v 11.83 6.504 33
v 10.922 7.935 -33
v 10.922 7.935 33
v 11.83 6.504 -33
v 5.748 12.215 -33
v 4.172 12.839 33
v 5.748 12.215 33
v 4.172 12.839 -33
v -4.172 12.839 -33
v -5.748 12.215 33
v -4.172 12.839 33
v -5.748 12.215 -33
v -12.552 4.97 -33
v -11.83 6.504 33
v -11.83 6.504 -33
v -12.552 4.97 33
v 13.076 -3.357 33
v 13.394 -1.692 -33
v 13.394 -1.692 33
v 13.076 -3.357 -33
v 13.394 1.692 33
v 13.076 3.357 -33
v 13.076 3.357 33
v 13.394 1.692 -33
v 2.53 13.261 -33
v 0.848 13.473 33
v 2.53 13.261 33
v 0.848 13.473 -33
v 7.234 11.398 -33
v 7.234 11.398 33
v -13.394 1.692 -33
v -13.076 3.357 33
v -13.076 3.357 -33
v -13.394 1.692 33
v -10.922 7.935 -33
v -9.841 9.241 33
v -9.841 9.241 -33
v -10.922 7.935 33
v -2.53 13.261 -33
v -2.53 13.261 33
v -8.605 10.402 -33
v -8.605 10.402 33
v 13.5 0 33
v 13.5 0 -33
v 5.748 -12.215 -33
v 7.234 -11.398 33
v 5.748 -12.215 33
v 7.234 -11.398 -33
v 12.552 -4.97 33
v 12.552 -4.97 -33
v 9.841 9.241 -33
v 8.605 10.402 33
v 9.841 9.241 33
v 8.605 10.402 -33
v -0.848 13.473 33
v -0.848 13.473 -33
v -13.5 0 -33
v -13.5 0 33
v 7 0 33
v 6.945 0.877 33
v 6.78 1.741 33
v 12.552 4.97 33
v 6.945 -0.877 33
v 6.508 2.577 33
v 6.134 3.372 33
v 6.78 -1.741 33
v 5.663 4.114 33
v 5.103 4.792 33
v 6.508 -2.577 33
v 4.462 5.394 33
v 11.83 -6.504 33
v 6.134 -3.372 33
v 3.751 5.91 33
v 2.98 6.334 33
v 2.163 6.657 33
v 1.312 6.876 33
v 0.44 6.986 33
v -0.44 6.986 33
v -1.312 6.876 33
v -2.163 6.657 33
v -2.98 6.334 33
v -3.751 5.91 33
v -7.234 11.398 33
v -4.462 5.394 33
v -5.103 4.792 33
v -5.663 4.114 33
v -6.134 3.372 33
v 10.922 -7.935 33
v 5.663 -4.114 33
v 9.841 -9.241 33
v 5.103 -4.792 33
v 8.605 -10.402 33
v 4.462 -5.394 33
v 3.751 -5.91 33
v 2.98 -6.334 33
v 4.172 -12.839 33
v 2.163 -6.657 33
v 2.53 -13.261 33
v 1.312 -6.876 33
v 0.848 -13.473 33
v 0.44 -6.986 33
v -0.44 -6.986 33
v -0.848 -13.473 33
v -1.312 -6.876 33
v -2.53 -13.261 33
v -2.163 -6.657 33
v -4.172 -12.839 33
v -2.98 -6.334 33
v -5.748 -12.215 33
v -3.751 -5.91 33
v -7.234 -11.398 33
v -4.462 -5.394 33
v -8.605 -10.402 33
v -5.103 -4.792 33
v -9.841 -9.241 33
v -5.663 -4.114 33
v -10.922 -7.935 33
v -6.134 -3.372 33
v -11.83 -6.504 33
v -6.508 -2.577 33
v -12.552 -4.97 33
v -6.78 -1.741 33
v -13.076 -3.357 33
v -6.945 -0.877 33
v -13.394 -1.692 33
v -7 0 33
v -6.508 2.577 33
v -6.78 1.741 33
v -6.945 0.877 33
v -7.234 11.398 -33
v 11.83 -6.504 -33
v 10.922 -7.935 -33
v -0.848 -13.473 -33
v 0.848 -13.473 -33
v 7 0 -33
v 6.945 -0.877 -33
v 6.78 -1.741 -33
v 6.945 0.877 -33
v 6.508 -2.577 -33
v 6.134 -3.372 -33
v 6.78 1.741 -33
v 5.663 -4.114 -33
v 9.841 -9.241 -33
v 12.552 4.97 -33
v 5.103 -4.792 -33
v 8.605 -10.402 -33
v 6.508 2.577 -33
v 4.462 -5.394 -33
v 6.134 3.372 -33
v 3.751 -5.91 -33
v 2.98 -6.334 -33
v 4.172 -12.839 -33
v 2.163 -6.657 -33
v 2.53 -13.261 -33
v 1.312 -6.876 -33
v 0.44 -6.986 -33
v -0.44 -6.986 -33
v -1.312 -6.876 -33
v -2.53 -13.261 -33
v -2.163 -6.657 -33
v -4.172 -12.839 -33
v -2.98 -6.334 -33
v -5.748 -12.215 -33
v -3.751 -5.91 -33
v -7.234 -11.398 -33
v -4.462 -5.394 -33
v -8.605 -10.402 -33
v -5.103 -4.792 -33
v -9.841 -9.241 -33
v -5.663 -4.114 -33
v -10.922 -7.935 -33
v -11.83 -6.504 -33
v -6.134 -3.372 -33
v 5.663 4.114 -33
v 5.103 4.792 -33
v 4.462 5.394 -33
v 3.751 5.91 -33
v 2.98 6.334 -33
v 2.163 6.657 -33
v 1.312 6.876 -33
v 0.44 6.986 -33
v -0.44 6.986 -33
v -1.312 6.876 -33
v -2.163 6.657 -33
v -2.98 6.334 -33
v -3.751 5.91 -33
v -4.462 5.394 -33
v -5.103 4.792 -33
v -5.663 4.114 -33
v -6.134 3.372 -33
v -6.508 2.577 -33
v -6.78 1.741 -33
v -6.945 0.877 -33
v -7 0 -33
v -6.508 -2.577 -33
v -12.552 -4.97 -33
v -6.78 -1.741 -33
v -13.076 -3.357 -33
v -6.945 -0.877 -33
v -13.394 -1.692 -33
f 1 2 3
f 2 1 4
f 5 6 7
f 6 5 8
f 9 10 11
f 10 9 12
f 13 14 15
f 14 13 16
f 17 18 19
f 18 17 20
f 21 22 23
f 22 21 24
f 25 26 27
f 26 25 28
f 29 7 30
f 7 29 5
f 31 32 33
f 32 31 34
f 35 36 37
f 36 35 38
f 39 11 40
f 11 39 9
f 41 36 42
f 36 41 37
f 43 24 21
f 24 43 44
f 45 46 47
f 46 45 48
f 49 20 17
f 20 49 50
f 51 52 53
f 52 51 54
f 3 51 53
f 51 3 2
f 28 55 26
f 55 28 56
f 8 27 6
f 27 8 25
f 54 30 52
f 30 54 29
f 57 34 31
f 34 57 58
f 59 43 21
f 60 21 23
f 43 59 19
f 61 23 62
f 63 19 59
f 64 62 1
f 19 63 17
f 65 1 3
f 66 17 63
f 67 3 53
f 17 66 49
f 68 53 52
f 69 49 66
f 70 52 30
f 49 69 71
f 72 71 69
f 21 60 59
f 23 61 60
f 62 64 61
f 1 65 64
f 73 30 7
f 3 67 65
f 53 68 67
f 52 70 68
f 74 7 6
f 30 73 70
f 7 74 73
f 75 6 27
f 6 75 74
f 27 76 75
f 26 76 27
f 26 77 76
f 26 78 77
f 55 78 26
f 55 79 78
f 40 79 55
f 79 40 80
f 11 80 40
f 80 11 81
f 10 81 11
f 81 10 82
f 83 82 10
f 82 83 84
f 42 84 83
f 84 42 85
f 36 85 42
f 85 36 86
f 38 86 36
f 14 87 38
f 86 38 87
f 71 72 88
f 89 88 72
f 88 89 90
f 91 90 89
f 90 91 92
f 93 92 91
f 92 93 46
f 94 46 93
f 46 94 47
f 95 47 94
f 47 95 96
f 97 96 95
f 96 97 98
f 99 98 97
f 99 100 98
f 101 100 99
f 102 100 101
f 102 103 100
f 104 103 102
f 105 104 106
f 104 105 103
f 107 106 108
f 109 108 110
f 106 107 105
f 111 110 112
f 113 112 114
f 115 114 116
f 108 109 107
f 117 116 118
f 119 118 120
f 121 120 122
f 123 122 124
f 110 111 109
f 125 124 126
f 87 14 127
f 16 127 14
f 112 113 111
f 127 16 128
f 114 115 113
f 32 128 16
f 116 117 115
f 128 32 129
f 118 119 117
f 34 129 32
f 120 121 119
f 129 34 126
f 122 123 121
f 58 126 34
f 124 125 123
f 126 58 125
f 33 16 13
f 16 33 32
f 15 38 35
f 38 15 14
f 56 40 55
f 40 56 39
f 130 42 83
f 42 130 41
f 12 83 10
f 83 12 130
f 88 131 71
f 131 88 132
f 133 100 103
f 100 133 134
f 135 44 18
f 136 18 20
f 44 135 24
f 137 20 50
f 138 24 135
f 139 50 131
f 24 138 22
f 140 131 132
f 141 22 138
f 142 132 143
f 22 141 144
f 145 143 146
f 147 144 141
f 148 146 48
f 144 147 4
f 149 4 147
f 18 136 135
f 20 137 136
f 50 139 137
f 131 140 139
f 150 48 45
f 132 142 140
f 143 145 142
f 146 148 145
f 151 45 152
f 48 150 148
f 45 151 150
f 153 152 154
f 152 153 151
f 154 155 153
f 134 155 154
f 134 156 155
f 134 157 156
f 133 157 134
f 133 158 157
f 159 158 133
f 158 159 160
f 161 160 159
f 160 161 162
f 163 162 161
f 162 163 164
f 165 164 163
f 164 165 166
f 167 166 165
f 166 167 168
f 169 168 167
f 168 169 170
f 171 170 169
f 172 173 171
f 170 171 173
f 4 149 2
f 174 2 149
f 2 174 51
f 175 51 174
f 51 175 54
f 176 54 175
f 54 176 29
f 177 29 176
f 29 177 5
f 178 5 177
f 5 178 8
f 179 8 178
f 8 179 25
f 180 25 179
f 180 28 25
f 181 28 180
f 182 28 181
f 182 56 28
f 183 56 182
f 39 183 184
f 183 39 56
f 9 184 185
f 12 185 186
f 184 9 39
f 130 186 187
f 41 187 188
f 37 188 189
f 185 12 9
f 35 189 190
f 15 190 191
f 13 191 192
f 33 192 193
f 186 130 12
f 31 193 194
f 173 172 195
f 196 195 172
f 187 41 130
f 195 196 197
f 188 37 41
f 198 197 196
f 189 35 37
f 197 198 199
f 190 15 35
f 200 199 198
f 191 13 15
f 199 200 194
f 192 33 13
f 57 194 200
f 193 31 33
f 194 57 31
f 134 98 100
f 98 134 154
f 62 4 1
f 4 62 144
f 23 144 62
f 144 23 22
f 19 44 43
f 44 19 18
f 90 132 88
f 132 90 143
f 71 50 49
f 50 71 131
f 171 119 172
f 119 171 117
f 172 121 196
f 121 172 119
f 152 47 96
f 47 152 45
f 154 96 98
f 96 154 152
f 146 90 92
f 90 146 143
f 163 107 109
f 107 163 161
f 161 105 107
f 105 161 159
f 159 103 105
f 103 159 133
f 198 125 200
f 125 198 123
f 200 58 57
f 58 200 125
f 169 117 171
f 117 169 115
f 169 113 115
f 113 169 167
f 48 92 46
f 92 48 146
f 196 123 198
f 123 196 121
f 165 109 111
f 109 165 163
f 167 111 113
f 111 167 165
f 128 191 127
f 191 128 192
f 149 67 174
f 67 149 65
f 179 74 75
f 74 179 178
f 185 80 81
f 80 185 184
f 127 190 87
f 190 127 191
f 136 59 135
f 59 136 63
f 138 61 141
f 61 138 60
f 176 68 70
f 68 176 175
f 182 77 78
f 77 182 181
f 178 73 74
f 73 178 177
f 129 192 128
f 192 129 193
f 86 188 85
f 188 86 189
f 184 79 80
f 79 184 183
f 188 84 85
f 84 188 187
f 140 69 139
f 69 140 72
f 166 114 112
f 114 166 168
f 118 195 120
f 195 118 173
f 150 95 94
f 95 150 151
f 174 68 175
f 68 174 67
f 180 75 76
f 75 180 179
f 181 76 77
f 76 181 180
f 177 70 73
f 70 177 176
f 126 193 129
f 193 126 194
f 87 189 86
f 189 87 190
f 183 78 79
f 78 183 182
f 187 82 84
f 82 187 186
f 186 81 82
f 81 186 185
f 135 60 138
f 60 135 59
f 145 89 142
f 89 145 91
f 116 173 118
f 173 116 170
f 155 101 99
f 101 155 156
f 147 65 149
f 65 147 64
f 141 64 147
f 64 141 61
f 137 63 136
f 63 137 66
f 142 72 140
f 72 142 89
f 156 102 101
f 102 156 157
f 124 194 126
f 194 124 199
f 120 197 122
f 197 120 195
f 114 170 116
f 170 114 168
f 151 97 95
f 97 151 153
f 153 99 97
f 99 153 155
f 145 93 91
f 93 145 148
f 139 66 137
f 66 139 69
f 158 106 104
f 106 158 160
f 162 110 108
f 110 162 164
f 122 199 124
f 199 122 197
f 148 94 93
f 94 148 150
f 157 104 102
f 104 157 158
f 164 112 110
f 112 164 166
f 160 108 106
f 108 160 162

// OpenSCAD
$fn = 50;


difference() {
	union() {
		translate(v = [0, 0, -33.0000000000]) {
			cylinder(h = 66, r = 13.5000000000);
		}
	}
	union() {
		translate(v = [0, 0, -100.0000000000]) {
			cylinder(h = 200, r = 7);
		}
	}
}
